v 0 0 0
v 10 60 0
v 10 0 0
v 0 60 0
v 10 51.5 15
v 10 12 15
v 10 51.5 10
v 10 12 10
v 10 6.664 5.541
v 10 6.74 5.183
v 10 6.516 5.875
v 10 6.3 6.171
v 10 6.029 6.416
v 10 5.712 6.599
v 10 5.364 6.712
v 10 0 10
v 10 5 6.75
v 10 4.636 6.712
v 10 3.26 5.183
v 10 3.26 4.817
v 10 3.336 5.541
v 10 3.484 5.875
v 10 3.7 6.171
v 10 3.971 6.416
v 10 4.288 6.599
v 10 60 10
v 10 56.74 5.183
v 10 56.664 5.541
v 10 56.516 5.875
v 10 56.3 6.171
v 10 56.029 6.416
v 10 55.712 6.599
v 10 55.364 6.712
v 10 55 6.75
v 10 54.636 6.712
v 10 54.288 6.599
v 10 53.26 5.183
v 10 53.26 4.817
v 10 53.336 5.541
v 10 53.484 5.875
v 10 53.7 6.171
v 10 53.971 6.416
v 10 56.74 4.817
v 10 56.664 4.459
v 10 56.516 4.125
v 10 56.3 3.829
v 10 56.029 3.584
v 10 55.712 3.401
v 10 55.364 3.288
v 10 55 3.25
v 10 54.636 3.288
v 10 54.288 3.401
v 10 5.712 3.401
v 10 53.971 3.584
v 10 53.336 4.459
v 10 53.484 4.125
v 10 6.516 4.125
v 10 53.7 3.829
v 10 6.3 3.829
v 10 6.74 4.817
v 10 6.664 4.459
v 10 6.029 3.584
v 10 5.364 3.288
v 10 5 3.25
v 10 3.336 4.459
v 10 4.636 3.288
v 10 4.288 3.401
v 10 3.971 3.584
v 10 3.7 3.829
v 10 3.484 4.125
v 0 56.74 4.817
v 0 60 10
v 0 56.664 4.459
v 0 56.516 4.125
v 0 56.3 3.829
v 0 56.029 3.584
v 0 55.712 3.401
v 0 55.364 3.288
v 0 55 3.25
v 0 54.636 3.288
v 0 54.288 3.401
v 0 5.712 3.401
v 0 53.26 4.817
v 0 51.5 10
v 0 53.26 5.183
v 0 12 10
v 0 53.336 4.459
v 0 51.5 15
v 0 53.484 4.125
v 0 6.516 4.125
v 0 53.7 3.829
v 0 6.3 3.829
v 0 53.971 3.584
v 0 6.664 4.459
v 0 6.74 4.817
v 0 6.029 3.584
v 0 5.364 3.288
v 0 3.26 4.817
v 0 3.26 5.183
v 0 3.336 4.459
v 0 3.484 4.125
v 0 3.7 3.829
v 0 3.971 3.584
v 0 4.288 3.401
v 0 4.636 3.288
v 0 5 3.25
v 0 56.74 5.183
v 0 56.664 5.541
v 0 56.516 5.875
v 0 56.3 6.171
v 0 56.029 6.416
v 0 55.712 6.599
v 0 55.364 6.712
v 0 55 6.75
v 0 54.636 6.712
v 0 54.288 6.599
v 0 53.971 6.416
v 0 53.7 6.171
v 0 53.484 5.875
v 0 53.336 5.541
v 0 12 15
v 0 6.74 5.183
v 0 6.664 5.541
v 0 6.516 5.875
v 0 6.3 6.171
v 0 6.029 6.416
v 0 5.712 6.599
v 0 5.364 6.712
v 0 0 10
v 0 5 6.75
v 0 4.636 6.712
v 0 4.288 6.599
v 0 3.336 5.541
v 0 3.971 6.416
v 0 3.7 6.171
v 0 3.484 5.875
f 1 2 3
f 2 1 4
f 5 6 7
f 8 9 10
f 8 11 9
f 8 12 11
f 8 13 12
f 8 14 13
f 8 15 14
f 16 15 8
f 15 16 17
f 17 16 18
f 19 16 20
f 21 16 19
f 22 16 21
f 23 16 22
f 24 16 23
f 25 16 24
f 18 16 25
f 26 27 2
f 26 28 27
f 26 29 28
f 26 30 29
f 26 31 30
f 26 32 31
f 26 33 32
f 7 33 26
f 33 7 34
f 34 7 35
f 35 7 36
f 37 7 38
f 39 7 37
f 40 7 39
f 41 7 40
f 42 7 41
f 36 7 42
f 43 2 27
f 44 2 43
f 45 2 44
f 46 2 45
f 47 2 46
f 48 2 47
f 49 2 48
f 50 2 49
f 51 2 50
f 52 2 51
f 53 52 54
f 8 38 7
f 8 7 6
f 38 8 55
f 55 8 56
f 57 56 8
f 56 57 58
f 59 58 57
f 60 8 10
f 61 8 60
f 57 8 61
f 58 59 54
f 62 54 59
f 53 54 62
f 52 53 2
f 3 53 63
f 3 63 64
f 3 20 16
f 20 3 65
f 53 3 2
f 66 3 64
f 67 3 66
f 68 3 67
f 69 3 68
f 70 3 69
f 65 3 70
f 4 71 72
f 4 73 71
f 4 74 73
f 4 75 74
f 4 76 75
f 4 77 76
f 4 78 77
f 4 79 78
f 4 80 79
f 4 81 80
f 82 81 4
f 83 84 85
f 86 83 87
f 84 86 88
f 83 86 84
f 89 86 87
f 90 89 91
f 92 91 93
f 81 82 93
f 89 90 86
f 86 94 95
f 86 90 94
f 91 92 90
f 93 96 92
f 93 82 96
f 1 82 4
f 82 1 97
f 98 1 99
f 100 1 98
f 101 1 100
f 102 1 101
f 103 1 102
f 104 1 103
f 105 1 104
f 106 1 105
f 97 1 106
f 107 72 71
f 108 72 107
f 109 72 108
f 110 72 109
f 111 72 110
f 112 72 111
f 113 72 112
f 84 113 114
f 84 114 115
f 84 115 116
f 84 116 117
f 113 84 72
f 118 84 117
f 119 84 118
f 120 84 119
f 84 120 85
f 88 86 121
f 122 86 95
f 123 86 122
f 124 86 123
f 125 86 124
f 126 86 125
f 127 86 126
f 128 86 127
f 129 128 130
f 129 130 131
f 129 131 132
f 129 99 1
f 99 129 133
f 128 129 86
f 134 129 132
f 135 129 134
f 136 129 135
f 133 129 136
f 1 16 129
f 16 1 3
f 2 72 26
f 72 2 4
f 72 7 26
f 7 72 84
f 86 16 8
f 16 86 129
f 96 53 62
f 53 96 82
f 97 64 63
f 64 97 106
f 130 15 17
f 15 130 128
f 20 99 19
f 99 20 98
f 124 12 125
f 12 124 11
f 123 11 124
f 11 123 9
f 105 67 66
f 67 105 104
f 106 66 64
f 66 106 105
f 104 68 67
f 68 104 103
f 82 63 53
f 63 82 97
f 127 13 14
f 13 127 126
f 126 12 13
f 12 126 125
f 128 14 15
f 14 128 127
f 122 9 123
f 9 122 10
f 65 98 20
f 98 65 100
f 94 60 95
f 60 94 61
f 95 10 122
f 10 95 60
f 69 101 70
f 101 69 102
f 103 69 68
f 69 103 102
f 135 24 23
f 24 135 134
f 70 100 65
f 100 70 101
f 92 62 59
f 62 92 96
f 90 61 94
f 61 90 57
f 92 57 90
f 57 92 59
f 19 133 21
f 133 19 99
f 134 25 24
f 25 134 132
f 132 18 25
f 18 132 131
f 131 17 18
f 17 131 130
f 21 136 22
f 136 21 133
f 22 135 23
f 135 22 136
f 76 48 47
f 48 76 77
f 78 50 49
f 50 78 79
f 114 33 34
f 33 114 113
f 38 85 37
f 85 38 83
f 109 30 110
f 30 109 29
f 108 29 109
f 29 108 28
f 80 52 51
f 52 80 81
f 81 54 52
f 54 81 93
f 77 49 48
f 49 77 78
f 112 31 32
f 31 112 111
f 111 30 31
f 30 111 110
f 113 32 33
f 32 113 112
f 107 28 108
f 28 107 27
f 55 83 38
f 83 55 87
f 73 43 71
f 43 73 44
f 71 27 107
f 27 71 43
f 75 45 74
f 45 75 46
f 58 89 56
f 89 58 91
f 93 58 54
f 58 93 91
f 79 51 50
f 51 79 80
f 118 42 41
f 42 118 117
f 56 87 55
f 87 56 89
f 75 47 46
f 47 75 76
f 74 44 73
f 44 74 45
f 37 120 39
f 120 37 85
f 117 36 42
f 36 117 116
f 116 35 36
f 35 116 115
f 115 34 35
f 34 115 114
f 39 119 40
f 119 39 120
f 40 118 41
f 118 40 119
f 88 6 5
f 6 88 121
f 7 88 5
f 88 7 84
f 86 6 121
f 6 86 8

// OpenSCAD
$fs=0.1;
boxLength = 10;
boxWidth = 60;

makesHoles();

module makesHoles() {
    union() {
        difference() {
            squareBox(boxLength,boxWidth);
            tube(5,5);
            tube(5,boxWidth-5);
        }
        translate([0,12,10]) {
            #cube([10,39.5,5]);
        }
    }
}

module squareBox(length,width) {
    linear_extrude(height=10,convexity=8){
        square([length,width]);
    }
}

module tube(height,location) {
    translate([-1,location,height]) {
        rotate([0,90,0]) {
            cylinder(d=3.5,h=20); 
        }
    }
}
